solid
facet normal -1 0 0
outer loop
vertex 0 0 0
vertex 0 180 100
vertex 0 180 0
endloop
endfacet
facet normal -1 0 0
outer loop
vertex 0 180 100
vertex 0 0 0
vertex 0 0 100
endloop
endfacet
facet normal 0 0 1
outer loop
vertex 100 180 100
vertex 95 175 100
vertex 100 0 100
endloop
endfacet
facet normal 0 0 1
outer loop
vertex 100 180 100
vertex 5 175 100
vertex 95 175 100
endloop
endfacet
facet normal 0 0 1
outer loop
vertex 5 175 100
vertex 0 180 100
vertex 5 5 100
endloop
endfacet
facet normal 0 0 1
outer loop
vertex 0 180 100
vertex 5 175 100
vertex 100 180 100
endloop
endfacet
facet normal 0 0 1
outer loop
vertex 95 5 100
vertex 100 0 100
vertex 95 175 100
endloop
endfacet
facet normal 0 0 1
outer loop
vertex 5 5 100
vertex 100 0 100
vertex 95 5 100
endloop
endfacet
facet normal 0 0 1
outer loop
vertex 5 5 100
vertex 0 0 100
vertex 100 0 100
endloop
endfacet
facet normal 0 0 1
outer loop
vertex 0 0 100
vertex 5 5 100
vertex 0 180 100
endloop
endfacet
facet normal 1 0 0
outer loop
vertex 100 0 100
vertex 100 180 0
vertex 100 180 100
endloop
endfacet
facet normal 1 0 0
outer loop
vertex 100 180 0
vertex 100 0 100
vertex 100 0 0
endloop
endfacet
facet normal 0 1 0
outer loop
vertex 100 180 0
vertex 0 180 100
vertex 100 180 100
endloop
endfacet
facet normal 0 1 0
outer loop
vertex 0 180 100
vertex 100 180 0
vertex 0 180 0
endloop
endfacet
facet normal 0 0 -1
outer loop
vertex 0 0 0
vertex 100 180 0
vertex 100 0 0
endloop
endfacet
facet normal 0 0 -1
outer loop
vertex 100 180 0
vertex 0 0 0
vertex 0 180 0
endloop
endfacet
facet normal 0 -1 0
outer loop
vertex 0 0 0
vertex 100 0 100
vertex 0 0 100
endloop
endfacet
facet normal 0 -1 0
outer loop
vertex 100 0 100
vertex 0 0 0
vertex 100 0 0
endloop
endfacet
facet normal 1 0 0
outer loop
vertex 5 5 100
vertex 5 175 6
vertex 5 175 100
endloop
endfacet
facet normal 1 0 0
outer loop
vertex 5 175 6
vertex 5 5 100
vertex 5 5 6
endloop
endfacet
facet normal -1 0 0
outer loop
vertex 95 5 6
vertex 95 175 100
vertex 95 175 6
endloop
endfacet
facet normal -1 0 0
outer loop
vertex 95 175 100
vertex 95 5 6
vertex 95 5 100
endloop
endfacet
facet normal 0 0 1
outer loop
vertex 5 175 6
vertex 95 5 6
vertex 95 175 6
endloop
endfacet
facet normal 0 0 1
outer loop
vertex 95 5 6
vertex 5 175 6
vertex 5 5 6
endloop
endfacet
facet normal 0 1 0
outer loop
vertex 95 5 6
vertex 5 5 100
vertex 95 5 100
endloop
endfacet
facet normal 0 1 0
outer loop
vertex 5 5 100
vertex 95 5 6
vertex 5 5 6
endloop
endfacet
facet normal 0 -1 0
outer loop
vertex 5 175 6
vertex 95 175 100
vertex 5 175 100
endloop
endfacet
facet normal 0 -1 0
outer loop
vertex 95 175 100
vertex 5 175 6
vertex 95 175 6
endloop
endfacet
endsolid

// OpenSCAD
// Parameters
box_size = 180;        // mm
width_size = 100;        // mm
box_high = 100;        // mm
thickness = 5;         // mm (wall thickness)
flap_extension = 100;  // mm (extra top part for mounting)
hole_diam = 8;         // mm
hole_margin = 30;      // mm from flap sides
hole_distance = box_size - 2 * hole_margin; // distance between holes
hole_y = hole_margin;  // Y position from left for first hole
hole_z = box_size + flap_extension / 2; // Z position for holes (centered on flap)

// Box (open at back)
difference() {
    // Outer shell
    cube([width_size, box_size, box_high]);

    // Hollow interior
    translate([thickness, thickness, thickness + 1])
        cube([width_size - 2 * thickness, box_size - 2 * thickness, box_size - thickness]);
}

//difference() {
//    // Extended top flap for mounting
//    translate([0, 0, box_high])
//        cube([box_size, thickness, flap_extension]);
//
//    // Mounting holes in extended flap
//    translate([hole_margin, thickness + 1, box_high + flap_extension / 2])
//        rotate([90,0,0])
//        cylinder(h=thickness+10, d=hole_diam, $fn=40);
//
//    translate([box_size - hole_margin, thickness + 1, box_high + flap_extension / 2])
//        rotate([90,0,0])
//        cylinder(h=thickness+10, d=hole_diam, $fn=40);
//}
